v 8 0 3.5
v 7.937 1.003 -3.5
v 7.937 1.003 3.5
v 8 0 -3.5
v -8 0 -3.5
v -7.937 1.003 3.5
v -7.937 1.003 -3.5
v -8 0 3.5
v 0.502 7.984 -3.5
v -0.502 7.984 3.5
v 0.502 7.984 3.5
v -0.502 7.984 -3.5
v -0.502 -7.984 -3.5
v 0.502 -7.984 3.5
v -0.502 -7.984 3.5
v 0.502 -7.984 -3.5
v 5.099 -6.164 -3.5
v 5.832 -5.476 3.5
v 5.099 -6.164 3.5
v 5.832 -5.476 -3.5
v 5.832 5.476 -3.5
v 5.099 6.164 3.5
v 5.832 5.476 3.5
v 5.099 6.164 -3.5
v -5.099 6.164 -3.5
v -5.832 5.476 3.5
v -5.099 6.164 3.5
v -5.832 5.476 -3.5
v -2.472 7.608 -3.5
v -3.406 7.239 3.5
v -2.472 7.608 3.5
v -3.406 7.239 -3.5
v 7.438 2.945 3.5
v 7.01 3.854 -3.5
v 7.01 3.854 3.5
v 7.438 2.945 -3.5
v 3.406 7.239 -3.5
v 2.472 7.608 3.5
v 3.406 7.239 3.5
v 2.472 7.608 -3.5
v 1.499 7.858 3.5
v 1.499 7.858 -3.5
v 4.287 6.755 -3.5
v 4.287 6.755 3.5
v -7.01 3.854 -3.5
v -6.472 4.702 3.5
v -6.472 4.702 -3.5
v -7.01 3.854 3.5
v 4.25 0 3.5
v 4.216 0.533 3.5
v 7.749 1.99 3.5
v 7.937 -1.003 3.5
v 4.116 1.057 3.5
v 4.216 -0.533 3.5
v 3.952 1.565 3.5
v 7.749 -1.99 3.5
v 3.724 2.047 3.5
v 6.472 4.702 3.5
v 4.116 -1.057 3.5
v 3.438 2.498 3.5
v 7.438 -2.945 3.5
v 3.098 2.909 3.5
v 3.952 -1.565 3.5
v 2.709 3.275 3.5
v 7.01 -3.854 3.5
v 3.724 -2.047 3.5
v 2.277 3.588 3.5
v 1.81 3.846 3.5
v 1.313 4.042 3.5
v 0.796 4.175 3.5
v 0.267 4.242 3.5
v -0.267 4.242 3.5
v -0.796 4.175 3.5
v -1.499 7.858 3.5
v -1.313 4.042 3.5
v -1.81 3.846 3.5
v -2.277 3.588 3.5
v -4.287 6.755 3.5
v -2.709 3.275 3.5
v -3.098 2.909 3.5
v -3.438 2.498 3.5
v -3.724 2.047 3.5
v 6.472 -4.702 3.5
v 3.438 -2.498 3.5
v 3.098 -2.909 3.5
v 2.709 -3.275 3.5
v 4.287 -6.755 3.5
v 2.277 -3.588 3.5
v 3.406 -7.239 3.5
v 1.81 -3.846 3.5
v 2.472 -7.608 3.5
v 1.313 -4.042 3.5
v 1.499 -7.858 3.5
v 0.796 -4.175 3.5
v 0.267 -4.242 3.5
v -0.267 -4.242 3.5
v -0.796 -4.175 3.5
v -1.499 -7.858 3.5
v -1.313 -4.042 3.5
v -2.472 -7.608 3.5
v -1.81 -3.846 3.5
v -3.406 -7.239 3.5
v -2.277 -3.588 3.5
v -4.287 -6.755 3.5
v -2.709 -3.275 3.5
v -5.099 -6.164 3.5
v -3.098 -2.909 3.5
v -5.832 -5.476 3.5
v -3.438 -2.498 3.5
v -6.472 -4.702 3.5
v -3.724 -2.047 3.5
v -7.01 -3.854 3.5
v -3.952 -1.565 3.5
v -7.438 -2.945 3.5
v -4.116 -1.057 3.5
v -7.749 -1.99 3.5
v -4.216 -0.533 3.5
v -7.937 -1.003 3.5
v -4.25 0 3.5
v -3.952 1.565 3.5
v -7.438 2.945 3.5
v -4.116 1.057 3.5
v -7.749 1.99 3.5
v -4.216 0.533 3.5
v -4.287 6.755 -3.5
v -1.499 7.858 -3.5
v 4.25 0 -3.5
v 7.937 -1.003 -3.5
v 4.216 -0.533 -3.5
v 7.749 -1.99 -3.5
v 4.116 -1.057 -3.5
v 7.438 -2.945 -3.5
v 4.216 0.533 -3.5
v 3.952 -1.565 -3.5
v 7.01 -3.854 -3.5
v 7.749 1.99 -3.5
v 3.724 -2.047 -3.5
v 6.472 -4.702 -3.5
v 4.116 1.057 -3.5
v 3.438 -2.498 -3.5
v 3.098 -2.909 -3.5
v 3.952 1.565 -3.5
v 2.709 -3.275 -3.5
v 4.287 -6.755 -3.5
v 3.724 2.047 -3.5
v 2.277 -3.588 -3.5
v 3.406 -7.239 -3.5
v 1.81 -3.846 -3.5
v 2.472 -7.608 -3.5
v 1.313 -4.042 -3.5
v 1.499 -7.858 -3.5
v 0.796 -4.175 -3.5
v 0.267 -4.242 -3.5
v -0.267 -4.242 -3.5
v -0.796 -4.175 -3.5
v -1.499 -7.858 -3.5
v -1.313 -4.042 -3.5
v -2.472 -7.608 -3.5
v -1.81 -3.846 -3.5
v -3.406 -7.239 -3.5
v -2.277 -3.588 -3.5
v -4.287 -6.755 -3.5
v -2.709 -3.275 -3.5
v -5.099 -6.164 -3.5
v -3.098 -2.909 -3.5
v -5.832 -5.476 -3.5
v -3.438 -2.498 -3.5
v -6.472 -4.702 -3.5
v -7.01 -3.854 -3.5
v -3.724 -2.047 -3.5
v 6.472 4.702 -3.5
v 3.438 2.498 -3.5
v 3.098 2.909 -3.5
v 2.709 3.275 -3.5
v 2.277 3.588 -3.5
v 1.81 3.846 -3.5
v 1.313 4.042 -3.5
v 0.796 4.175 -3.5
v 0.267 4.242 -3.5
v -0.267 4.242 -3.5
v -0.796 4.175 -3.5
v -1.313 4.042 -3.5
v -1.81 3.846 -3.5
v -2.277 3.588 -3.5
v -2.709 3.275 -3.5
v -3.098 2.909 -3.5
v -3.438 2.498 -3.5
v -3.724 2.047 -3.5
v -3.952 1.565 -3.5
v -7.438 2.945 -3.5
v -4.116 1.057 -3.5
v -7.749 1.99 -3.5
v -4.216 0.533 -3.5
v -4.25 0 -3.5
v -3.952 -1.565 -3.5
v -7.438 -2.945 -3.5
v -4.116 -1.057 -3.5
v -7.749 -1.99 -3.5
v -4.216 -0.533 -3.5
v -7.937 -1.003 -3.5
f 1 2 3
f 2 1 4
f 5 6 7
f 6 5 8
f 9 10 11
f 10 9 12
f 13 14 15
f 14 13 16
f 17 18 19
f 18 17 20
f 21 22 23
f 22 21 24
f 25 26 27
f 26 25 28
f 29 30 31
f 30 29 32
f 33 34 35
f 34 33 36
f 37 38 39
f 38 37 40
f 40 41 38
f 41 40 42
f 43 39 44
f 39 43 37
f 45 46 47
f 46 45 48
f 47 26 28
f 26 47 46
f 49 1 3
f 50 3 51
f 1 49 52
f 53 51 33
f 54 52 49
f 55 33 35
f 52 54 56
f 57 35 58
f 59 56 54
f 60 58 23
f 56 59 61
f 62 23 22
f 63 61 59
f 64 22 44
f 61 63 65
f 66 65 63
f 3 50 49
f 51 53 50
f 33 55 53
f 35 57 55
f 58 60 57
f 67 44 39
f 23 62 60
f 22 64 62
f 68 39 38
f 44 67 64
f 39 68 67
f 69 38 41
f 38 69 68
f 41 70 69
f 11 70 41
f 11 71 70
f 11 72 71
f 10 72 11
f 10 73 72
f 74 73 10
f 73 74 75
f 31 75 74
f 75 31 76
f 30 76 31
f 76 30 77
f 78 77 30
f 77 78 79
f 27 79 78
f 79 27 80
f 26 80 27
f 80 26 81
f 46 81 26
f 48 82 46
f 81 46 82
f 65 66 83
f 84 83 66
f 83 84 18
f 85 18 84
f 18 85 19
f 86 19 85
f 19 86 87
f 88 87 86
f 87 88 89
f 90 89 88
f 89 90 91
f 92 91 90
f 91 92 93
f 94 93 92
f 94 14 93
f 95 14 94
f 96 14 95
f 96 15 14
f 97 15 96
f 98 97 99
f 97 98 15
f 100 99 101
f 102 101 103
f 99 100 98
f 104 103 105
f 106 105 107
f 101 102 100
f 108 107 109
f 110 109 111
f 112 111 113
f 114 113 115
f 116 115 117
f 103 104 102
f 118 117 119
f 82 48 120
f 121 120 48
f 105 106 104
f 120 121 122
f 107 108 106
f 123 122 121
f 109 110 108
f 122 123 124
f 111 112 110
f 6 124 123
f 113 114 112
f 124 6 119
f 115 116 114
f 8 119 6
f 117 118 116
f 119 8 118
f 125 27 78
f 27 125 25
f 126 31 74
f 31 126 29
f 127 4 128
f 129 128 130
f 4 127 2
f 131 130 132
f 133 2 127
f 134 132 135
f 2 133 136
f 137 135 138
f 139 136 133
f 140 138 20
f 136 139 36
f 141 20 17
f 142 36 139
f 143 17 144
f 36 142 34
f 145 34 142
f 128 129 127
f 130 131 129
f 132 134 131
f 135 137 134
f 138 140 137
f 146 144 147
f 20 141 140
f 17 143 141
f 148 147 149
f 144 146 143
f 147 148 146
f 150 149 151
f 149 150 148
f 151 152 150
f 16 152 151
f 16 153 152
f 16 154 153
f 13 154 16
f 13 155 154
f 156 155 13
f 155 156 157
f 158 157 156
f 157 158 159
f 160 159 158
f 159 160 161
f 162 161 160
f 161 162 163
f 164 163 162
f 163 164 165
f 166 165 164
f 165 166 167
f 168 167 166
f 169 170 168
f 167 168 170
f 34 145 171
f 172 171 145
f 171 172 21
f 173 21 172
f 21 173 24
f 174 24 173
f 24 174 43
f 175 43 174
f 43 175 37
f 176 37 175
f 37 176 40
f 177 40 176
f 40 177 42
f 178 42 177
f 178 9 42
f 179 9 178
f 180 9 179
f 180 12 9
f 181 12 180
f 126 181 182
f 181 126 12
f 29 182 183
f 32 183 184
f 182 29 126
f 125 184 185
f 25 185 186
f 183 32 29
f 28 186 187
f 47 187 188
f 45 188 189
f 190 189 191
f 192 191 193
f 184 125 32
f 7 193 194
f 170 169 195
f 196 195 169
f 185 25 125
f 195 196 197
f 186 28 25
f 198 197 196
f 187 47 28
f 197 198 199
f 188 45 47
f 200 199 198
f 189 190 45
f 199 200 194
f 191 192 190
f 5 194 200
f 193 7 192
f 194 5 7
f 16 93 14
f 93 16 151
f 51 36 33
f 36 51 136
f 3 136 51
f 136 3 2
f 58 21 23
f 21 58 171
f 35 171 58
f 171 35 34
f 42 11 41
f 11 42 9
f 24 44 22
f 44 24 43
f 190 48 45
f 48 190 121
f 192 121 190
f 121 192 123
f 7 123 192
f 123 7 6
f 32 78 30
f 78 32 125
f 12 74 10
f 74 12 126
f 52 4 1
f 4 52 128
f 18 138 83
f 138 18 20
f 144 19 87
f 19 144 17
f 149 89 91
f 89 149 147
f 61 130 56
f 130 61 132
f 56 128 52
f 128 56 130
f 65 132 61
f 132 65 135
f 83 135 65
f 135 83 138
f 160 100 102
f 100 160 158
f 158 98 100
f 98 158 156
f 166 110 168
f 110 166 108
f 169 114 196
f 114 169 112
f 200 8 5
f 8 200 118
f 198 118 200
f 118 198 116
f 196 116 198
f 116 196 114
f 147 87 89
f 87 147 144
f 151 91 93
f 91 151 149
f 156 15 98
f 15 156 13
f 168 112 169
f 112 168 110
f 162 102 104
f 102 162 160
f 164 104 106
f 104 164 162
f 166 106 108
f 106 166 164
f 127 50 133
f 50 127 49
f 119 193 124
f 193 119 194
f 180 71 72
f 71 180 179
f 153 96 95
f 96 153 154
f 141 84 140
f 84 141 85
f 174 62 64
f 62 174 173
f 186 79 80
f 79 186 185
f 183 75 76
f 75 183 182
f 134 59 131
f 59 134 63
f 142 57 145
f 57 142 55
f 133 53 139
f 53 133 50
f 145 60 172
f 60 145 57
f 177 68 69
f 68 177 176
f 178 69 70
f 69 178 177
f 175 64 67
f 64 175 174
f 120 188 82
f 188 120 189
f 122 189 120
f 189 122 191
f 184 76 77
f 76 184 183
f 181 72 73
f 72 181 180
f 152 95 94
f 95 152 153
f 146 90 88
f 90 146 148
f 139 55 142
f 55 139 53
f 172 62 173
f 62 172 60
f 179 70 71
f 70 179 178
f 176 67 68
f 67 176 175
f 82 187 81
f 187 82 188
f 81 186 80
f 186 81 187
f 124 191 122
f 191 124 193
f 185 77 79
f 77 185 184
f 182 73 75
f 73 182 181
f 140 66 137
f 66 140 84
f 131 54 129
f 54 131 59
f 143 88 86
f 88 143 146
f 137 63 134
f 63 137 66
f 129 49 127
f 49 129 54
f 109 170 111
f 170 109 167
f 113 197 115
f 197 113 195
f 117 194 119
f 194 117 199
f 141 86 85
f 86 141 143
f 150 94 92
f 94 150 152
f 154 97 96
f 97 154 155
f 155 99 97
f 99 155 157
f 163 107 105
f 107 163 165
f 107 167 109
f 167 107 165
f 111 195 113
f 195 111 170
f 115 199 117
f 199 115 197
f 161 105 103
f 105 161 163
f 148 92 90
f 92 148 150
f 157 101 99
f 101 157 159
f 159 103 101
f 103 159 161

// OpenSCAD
$fn = 50;


difference() {
	union() {
		translate(v = [0, 0, -3.5000000000]) {
			cylinder(h = 7, r = 8.0000000000);
		}
	}
	union() {
		translate(v = [0, 0, -100.0000000000]) {
			cylinder(h = 200, r = 4.2500000000);
		}
	}
}
